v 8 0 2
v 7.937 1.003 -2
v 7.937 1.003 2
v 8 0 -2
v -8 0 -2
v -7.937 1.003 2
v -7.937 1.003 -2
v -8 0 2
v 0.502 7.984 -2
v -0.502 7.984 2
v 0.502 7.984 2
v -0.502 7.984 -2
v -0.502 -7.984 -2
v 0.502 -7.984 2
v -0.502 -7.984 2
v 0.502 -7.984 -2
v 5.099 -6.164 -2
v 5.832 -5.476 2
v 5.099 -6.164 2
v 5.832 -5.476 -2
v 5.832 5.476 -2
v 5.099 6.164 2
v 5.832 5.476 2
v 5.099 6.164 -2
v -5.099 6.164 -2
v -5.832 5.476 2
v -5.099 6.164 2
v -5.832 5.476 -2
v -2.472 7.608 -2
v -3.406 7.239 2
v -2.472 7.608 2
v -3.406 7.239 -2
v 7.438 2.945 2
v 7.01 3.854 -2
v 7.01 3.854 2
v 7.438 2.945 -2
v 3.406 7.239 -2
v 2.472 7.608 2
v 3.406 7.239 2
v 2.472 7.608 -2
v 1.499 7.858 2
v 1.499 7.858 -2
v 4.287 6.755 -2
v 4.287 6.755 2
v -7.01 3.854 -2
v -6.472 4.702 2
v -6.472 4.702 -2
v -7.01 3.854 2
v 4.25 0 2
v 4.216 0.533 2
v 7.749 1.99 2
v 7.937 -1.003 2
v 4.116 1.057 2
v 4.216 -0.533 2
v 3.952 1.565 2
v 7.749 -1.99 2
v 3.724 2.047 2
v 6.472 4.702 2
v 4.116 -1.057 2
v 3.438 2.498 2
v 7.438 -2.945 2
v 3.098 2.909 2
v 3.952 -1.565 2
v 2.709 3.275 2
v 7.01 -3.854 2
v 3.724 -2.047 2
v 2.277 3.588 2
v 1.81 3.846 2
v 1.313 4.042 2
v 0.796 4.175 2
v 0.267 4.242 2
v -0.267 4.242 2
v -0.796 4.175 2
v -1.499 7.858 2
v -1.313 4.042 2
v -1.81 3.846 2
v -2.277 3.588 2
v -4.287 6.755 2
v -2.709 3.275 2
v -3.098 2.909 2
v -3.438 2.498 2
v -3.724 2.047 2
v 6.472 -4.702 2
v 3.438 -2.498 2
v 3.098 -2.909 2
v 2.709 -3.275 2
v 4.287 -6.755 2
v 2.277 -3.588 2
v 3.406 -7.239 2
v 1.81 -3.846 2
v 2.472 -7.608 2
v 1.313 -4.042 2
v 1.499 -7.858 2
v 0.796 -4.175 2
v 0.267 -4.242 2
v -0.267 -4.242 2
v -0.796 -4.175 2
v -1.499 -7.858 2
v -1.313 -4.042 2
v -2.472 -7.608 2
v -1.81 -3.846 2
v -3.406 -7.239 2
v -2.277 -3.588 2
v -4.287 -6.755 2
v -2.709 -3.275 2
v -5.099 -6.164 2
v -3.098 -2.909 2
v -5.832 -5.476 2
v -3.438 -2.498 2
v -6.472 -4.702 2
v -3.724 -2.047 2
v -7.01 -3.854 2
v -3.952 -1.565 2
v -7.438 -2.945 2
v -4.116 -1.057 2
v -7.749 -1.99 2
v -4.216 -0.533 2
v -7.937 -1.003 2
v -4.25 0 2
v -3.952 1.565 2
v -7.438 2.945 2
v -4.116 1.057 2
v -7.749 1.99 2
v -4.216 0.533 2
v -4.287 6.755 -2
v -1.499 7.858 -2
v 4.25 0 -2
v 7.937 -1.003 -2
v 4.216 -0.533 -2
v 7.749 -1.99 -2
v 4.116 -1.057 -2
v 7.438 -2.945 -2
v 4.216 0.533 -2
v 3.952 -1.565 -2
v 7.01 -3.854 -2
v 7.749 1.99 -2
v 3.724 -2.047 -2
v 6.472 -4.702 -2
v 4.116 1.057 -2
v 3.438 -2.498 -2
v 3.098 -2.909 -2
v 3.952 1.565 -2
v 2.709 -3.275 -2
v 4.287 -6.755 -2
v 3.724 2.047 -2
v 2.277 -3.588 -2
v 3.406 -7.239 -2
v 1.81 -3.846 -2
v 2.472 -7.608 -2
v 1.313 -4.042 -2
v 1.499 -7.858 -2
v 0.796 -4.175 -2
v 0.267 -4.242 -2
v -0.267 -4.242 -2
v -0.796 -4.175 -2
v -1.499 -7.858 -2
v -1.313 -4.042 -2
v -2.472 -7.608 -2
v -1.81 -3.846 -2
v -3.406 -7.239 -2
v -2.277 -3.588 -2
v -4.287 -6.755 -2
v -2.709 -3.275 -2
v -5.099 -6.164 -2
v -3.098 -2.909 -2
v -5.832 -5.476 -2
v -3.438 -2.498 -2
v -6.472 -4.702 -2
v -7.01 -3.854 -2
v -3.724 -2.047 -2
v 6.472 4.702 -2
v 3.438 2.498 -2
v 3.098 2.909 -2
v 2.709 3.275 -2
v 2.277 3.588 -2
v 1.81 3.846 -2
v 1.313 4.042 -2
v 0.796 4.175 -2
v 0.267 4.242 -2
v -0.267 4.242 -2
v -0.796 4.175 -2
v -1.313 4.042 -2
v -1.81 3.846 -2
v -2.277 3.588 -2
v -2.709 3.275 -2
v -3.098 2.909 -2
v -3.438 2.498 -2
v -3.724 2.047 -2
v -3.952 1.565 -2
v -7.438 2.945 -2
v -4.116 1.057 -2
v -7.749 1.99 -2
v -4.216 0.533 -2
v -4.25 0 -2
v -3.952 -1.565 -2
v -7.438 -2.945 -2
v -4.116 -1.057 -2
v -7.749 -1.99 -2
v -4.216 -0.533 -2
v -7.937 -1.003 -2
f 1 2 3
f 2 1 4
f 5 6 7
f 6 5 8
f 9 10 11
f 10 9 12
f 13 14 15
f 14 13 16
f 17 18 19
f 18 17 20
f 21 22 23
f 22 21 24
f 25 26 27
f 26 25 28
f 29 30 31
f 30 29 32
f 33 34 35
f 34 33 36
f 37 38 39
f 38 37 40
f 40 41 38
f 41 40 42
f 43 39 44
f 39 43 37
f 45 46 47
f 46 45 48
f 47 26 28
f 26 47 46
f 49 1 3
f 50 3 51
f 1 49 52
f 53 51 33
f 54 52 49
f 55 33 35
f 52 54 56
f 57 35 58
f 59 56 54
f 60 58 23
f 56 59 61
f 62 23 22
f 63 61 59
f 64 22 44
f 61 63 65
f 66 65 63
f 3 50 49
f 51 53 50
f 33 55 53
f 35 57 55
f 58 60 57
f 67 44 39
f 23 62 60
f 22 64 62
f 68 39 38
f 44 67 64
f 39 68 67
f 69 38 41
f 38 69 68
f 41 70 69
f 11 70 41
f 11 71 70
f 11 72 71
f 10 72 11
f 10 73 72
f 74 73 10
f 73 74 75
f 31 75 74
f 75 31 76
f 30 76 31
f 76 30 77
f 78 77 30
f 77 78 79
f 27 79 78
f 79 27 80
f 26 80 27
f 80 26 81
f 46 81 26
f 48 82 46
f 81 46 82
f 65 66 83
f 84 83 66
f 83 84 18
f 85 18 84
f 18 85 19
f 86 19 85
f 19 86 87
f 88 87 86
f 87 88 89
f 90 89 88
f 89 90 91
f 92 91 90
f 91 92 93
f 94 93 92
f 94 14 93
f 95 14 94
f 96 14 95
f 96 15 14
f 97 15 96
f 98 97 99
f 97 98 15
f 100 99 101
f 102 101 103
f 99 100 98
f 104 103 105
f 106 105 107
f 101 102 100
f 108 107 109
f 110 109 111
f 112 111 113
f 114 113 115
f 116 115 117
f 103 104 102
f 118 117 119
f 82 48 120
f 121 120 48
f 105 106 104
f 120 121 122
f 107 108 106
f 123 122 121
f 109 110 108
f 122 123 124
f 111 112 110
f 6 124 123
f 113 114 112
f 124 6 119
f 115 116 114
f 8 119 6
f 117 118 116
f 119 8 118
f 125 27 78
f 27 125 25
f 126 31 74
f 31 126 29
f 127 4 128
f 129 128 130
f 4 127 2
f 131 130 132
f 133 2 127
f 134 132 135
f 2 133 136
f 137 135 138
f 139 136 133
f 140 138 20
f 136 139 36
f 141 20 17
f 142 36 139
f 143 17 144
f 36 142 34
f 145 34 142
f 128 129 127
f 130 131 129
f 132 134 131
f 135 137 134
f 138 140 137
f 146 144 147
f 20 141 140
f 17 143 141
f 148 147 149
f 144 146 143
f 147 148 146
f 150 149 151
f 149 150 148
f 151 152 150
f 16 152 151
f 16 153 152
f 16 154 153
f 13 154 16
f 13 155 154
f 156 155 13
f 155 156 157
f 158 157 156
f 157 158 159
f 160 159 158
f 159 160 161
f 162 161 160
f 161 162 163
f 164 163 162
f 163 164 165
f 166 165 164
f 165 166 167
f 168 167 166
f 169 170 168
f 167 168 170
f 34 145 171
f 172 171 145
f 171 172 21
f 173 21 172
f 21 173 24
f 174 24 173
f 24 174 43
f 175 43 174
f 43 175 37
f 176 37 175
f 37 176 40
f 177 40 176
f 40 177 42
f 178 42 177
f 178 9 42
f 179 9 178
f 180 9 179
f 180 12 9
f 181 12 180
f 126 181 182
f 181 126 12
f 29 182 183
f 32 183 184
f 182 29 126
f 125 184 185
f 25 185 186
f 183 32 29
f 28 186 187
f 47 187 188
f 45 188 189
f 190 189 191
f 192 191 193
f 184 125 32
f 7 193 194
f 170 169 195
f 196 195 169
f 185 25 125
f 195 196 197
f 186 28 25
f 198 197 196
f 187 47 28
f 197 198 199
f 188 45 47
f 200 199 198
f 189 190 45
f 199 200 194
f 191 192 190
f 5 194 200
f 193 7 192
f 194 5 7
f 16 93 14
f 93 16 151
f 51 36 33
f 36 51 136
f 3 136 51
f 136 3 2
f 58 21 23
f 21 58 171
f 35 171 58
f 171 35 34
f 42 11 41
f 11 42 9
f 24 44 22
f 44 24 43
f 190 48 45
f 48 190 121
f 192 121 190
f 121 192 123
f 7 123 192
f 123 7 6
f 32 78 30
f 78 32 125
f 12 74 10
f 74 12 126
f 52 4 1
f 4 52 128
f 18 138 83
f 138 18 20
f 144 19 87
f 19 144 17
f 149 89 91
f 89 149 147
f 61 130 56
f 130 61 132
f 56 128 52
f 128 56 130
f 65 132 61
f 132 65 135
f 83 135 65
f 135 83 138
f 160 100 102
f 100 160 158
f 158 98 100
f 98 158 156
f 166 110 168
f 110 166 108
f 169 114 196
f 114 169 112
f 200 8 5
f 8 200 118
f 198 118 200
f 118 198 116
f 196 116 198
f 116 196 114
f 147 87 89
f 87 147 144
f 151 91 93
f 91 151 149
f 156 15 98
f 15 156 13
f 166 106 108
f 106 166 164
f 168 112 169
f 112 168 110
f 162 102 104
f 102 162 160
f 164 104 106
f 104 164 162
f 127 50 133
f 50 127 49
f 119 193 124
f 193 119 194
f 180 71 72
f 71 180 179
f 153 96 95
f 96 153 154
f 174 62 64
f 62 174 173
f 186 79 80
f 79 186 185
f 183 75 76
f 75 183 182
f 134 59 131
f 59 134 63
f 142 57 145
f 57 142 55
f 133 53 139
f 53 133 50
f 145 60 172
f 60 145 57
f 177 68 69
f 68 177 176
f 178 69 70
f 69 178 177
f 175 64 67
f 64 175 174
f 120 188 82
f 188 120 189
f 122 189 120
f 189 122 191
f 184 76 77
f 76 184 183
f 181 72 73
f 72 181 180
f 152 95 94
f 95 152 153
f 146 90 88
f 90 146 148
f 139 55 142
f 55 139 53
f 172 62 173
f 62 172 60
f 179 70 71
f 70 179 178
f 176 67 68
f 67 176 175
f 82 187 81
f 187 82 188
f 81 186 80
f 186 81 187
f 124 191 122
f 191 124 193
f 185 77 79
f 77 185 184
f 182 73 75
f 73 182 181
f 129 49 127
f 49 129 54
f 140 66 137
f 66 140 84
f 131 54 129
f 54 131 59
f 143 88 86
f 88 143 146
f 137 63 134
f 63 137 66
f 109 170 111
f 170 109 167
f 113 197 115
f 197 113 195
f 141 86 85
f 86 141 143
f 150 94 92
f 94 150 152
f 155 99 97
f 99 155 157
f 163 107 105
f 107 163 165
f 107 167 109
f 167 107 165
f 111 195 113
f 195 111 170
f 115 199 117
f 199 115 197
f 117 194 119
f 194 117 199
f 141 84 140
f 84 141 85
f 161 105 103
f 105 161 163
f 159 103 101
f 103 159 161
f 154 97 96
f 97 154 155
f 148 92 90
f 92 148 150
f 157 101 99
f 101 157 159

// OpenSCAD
$fn = 50;


difference() {
	union() {
		translate(v = [0, 0, -2.0000000000]) {
			cylinder(h = 4, r = 8.0000000000);
		}
	}
	union() {
		translate(v = [0, 0, -100.0000000000]) {
			cylinder(h = 200, r = 4.2500000000);
		}
	}
}
